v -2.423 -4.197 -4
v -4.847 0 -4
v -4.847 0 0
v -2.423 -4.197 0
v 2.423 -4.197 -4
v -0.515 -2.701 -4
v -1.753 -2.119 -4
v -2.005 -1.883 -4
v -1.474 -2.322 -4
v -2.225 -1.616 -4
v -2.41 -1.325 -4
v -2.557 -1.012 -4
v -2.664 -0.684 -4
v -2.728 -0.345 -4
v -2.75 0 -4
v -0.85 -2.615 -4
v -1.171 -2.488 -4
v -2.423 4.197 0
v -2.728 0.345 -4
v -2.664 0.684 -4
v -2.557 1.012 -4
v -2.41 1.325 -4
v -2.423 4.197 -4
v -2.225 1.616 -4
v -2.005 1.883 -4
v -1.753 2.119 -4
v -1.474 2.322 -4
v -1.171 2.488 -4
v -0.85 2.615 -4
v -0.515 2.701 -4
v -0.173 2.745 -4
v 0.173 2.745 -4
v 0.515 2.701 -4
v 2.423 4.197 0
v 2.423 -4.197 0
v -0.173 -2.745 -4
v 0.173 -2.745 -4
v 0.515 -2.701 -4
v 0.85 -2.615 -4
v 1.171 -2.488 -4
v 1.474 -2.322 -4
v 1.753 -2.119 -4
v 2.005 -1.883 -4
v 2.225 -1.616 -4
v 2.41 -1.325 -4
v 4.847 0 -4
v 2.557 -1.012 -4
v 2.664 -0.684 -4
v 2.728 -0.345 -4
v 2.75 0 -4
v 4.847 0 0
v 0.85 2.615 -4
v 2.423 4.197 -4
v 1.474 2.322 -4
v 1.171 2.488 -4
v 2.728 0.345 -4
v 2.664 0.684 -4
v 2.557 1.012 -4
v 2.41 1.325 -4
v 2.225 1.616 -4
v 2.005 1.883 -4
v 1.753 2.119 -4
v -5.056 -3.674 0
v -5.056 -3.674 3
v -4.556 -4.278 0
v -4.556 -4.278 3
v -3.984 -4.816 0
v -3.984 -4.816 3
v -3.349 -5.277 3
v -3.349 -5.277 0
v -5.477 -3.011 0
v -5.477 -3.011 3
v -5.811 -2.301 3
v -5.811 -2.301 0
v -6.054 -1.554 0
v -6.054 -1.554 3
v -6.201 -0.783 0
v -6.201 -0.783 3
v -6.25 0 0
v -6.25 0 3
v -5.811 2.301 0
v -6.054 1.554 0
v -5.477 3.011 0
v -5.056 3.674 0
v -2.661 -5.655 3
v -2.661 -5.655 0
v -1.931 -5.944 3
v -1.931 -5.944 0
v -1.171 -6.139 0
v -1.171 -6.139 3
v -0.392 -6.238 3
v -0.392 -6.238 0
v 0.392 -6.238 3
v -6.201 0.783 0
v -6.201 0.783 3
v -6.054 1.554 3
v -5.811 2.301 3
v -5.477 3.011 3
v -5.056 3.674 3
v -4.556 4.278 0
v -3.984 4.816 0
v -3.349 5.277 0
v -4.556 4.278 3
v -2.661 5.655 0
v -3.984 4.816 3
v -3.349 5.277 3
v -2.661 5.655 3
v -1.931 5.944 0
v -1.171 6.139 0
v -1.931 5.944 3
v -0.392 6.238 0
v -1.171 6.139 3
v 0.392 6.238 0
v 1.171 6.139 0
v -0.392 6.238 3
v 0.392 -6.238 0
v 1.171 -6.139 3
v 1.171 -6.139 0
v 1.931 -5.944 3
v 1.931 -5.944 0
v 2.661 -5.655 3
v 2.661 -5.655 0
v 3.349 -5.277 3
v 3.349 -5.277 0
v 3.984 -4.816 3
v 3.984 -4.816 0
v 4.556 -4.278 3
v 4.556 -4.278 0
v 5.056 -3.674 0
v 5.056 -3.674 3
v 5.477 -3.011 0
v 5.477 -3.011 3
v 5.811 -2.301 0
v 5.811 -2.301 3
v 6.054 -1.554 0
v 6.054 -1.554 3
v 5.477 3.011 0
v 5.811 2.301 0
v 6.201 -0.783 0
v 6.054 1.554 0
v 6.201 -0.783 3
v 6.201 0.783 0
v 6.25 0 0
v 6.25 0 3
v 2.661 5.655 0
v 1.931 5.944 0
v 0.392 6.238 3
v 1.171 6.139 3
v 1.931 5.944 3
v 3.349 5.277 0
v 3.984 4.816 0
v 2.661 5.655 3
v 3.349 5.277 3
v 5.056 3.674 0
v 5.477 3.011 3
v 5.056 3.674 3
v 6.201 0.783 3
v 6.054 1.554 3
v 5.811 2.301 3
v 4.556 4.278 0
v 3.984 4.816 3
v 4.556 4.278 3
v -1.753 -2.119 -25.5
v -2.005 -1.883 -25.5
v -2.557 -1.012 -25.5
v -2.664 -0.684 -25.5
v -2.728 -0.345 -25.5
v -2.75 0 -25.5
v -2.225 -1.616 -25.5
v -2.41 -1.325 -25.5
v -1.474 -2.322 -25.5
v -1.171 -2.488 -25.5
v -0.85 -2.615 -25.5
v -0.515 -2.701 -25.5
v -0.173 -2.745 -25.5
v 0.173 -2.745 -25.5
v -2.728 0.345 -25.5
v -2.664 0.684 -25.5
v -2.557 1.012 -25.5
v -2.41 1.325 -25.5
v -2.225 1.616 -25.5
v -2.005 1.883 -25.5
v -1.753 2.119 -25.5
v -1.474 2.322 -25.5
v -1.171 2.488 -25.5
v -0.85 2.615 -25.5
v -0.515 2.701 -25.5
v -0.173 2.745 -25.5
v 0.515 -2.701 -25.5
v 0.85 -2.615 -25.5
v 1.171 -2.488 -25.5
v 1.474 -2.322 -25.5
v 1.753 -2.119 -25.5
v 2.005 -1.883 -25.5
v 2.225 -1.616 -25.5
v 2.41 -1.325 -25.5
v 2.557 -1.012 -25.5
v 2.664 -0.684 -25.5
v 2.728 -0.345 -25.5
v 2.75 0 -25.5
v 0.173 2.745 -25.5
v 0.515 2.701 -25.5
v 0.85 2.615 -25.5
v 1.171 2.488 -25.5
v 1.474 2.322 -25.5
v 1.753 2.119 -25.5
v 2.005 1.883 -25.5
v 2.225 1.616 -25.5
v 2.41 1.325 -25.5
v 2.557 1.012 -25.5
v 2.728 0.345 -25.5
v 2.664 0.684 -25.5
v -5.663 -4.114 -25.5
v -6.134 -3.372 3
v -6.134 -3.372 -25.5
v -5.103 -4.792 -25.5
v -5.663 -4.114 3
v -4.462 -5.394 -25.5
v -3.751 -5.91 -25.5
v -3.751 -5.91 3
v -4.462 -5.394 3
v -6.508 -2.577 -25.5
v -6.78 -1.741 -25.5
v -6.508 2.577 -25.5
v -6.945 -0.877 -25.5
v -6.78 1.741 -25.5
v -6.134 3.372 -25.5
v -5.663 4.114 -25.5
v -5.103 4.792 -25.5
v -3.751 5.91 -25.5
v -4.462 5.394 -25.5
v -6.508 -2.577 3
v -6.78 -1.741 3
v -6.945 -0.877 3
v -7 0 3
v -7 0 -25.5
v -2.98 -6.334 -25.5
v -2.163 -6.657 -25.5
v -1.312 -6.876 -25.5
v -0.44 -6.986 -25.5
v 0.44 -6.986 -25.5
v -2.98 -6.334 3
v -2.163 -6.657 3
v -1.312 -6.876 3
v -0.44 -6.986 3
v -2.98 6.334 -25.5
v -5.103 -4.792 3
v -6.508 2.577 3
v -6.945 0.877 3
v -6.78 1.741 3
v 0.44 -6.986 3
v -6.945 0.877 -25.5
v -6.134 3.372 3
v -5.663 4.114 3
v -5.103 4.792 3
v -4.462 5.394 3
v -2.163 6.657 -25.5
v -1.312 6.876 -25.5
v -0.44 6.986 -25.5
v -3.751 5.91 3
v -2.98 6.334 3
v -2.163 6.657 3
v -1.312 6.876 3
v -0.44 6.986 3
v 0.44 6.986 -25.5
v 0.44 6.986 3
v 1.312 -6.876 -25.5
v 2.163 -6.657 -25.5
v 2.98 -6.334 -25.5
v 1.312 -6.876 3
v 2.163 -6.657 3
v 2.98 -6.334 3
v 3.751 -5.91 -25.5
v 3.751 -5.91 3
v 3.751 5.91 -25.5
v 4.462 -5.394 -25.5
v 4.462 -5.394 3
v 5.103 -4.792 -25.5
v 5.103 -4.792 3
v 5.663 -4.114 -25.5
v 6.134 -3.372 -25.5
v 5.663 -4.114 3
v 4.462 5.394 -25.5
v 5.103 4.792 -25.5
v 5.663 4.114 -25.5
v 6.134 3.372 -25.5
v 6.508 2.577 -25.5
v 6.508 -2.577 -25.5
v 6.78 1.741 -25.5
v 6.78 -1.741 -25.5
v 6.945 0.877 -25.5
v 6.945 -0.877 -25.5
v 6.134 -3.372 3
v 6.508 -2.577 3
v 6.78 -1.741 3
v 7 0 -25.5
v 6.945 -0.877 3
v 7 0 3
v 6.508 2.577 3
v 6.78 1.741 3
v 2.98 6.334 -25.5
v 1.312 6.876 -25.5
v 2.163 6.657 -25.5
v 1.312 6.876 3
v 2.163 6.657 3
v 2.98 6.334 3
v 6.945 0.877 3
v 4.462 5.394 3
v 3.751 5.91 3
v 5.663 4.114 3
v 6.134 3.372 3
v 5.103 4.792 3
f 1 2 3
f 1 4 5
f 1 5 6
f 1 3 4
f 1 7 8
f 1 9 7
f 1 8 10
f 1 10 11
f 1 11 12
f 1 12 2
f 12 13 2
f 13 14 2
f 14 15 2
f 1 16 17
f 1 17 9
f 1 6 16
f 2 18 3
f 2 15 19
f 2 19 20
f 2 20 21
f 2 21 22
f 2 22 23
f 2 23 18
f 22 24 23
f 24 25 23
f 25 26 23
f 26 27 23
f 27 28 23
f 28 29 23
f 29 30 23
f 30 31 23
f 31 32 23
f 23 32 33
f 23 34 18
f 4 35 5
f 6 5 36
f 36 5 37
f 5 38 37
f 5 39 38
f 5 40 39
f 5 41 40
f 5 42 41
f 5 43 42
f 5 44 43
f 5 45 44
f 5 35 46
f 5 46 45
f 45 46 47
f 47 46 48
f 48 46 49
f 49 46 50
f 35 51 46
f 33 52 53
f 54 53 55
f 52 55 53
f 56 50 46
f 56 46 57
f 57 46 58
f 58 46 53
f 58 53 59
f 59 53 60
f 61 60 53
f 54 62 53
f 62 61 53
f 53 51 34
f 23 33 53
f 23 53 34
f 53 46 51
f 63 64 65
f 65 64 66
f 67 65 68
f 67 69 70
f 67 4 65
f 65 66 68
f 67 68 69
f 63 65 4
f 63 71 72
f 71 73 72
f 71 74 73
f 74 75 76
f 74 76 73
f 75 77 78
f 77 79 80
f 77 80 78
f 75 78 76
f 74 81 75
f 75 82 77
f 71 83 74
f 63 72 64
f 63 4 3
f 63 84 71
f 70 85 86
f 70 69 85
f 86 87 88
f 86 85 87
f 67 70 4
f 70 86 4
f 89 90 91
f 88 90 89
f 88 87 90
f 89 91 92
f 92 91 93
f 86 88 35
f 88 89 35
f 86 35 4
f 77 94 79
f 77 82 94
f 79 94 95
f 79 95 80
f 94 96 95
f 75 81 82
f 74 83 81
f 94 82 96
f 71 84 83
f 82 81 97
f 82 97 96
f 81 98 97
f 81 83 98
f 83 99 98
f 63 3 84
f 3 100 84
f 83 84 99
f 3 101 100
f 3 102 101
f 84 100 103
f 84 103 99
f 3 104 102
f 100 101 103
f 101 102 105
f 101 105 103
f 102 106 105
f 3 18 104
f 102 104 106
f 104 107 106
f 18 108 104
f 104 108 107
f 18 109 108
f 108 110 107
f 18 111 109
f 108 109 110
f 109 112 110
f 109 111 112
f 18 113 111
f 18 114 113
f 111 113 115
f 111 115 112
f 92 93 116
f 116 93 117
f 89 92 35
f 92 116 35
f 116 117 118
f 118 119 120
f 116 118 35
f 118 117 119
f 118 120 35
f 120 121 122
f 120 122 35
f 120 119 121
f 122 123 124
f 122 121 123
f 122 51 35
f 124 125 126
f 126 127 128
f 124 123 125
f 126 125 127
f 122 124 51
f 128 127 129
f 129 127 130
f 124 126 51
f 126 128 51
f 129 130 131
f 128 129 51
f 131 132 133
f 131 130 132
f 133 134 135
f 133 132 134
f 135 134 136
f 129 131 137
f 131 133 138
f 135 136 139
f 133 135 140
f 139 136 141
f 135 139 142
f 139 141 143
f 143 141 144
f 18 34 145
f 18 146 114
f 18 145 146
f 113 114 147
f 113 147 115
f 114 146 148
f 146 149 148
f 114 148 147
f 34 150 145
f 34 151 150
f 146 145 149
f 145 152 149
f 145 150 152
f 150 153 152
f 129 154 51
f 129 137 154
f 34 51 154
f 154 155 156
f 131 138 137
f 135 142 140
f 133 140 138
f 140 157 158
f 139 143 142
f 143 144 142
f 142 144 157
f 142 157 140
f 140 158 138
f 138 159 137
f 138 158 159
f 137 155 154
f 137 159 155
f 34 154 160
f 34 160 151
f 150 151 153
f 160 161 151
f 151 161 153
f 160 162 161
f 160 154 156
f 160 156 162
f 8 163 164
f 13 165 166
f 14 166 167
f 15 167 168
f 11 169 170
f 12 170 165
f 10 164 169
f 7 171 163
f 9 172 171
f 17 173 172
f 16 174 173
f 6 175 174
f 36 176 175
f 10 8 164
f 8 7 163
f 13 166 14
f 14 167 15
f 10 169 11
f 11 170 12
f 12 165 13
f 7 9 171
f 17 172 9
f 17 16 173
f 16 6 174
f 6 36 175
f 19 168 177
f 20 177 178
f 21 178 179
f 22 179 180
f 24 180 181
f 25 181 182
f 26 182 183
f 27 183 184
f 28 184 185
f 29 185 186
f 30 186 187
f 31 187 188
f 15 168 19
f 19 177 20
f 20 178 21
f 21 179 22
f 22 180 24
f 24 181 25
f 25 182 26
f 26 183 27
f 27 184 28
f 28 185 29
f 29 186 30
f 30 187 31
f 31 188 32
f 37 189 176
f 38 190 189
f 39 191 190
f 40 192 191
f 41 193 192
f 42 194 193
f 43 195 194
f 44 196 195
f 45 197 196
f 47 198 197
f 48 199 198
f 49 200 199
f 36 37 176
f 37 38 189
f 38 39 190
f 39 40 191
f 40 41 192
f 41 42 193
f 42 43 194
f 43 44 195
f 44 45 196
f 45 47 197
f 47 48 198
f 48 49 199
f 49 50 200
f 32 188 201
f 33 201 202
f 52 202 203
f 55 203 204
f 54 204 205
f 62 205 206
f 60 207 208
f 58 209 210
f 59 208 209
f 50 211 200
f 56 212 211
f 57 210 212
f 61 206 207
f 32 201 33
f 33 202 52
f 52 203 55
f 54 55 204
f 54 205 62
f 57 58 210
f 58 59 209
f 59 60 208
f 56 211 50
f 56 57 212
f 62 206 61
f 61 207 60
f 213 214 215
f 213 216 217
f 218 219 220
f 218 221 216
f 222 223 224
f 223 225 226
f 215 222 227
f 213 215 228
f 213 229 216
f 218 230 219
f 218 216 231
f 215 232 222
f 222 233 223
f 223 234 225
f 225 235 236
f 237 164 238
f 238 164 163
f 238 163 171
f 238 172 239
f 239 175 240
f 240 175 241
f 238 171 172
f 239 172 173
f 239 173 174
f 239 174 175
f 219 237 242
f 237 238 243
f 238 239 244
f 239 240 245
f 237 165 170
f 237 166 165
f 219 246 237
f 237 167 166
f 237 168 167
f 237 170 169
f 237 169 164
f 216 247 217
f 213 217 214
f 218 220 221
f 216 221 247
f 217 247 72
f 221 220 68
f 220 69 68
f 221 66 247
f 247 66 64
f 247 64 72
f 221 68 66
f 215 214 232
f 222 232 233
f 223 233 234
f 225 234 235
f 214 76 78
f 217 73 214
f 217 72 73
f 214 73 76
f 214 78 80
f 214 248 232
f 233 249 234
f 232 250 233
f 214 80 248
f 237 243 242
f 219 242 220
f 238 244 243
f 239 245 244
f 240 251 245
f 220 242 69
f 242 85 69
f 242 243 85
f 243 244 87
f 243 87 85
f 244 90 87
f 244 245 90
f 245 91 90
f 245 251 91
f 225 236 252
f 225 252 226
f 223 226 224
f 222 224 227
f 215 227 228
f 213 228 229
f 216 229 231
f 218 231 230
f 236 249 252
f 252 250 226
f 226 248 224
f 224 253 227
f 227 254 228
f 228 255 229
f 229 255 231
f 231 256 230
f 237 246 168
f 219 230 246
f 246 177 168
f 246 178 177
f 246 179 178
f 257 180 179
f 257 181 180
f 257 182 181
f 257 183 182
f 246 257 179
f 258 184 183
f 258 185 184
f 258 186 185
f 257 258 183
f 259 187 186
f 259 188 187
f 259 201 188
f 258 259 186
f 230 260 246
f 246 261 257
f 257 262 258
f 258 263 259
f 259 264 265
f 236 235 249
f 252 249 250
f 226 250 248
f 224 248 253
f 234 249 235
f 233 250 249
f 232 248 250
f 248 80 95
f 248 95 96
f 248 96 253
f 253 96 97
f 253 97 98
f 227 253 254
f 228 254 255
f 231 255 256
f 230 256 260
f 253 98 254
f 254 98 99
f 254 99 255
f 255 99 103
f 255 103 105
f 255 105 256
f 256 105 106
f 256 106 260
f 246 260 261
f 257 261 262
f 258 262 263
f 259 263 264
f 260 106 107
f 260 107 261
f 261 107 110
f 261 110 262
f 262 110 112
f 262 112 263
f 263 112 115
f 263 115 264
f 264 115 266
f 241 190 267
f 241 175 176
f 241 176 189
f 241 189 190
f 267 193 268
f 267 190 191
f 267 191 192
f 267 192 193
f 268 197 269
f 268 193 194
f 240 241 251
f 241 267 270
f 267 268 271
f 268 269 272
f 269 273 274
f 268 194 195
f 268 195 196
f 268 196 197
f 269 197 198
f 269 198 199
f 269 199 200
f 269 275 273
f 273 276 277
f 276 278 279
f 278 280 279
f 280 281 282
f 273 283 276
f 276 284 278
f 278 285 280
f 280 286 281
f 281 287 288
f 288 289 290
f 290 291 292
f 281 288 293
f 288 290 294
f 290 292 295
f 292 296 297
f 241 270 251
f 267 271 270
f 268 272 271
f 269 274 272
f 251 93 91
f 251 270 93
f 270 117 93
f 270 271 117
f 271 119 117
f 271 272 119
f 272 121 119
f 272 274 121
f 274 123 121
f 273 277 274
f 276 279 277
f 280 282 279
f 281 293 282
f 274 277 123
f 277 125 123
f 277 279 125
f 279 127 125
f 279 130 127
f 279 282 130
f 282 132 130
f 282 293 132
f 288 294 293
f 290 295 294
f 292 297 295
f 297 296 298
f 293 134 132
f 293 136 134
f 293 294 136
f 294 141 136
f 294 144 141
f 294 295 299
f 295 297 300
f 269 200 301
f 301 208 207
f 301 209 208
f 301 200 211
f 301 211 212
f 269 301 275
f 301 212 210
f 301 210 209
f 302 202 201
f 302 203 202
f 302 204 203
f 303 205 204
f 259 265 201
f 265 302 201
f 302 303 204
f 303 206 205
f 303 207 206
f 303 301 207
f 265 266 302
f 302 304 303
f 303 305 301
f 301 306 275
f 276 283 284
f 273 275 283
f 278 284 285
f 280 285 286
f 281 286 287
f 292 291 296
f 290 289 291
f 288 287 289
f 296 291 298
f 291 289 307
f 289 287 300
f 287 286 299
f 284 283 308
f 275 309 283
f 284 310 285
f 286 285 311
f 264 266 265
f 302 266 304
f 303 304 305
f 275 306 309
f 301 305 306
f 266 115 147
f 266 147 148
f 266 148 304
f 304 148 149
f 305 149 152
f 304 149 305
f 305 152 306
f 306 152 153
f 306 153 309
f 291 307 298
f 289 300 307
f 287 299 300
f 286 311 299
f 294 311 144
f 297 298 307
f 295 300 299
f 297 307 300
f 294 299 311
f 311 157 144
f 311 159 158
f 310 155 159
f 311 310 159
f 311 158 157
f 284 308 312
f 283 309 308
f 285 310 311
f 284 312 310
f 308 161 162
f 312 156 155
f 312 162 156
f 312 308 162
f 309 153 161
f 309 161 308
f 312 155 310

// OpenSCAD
$fn = 50;

difference() {
	union() {
		translate(v = [0, 0, -25.5]) {
			cylinder(h = 28.5, r = 7.0);
		}
	}
	union() {
		translate(v = [0, 0, 0]) {
			rotate(a = [0, 0, 0]) {
				difference() {
					union() {
						translate(v = [0, 0, -4]) {
							linear_extrude(height = 4) {
								polygon(points = [[4.8468, 0.0], [2.4234000000000004, 4.197451927062417], [-2.423399999999999, 4.197451927062417], [-4.8468, 5.935618106107392e-16], [-2.423400000000002, -4.197451927062416], [2.423399999999997, -4.197451927062419]]);
							}
						}
					}
					union();
				}
			}
		}
		#cylinder(h = 3, r = 6.25);
		#translate(v = [0, 0, -100.0]) {
			cylinder(h = 200, r = 2.75);
		}
	}
}
